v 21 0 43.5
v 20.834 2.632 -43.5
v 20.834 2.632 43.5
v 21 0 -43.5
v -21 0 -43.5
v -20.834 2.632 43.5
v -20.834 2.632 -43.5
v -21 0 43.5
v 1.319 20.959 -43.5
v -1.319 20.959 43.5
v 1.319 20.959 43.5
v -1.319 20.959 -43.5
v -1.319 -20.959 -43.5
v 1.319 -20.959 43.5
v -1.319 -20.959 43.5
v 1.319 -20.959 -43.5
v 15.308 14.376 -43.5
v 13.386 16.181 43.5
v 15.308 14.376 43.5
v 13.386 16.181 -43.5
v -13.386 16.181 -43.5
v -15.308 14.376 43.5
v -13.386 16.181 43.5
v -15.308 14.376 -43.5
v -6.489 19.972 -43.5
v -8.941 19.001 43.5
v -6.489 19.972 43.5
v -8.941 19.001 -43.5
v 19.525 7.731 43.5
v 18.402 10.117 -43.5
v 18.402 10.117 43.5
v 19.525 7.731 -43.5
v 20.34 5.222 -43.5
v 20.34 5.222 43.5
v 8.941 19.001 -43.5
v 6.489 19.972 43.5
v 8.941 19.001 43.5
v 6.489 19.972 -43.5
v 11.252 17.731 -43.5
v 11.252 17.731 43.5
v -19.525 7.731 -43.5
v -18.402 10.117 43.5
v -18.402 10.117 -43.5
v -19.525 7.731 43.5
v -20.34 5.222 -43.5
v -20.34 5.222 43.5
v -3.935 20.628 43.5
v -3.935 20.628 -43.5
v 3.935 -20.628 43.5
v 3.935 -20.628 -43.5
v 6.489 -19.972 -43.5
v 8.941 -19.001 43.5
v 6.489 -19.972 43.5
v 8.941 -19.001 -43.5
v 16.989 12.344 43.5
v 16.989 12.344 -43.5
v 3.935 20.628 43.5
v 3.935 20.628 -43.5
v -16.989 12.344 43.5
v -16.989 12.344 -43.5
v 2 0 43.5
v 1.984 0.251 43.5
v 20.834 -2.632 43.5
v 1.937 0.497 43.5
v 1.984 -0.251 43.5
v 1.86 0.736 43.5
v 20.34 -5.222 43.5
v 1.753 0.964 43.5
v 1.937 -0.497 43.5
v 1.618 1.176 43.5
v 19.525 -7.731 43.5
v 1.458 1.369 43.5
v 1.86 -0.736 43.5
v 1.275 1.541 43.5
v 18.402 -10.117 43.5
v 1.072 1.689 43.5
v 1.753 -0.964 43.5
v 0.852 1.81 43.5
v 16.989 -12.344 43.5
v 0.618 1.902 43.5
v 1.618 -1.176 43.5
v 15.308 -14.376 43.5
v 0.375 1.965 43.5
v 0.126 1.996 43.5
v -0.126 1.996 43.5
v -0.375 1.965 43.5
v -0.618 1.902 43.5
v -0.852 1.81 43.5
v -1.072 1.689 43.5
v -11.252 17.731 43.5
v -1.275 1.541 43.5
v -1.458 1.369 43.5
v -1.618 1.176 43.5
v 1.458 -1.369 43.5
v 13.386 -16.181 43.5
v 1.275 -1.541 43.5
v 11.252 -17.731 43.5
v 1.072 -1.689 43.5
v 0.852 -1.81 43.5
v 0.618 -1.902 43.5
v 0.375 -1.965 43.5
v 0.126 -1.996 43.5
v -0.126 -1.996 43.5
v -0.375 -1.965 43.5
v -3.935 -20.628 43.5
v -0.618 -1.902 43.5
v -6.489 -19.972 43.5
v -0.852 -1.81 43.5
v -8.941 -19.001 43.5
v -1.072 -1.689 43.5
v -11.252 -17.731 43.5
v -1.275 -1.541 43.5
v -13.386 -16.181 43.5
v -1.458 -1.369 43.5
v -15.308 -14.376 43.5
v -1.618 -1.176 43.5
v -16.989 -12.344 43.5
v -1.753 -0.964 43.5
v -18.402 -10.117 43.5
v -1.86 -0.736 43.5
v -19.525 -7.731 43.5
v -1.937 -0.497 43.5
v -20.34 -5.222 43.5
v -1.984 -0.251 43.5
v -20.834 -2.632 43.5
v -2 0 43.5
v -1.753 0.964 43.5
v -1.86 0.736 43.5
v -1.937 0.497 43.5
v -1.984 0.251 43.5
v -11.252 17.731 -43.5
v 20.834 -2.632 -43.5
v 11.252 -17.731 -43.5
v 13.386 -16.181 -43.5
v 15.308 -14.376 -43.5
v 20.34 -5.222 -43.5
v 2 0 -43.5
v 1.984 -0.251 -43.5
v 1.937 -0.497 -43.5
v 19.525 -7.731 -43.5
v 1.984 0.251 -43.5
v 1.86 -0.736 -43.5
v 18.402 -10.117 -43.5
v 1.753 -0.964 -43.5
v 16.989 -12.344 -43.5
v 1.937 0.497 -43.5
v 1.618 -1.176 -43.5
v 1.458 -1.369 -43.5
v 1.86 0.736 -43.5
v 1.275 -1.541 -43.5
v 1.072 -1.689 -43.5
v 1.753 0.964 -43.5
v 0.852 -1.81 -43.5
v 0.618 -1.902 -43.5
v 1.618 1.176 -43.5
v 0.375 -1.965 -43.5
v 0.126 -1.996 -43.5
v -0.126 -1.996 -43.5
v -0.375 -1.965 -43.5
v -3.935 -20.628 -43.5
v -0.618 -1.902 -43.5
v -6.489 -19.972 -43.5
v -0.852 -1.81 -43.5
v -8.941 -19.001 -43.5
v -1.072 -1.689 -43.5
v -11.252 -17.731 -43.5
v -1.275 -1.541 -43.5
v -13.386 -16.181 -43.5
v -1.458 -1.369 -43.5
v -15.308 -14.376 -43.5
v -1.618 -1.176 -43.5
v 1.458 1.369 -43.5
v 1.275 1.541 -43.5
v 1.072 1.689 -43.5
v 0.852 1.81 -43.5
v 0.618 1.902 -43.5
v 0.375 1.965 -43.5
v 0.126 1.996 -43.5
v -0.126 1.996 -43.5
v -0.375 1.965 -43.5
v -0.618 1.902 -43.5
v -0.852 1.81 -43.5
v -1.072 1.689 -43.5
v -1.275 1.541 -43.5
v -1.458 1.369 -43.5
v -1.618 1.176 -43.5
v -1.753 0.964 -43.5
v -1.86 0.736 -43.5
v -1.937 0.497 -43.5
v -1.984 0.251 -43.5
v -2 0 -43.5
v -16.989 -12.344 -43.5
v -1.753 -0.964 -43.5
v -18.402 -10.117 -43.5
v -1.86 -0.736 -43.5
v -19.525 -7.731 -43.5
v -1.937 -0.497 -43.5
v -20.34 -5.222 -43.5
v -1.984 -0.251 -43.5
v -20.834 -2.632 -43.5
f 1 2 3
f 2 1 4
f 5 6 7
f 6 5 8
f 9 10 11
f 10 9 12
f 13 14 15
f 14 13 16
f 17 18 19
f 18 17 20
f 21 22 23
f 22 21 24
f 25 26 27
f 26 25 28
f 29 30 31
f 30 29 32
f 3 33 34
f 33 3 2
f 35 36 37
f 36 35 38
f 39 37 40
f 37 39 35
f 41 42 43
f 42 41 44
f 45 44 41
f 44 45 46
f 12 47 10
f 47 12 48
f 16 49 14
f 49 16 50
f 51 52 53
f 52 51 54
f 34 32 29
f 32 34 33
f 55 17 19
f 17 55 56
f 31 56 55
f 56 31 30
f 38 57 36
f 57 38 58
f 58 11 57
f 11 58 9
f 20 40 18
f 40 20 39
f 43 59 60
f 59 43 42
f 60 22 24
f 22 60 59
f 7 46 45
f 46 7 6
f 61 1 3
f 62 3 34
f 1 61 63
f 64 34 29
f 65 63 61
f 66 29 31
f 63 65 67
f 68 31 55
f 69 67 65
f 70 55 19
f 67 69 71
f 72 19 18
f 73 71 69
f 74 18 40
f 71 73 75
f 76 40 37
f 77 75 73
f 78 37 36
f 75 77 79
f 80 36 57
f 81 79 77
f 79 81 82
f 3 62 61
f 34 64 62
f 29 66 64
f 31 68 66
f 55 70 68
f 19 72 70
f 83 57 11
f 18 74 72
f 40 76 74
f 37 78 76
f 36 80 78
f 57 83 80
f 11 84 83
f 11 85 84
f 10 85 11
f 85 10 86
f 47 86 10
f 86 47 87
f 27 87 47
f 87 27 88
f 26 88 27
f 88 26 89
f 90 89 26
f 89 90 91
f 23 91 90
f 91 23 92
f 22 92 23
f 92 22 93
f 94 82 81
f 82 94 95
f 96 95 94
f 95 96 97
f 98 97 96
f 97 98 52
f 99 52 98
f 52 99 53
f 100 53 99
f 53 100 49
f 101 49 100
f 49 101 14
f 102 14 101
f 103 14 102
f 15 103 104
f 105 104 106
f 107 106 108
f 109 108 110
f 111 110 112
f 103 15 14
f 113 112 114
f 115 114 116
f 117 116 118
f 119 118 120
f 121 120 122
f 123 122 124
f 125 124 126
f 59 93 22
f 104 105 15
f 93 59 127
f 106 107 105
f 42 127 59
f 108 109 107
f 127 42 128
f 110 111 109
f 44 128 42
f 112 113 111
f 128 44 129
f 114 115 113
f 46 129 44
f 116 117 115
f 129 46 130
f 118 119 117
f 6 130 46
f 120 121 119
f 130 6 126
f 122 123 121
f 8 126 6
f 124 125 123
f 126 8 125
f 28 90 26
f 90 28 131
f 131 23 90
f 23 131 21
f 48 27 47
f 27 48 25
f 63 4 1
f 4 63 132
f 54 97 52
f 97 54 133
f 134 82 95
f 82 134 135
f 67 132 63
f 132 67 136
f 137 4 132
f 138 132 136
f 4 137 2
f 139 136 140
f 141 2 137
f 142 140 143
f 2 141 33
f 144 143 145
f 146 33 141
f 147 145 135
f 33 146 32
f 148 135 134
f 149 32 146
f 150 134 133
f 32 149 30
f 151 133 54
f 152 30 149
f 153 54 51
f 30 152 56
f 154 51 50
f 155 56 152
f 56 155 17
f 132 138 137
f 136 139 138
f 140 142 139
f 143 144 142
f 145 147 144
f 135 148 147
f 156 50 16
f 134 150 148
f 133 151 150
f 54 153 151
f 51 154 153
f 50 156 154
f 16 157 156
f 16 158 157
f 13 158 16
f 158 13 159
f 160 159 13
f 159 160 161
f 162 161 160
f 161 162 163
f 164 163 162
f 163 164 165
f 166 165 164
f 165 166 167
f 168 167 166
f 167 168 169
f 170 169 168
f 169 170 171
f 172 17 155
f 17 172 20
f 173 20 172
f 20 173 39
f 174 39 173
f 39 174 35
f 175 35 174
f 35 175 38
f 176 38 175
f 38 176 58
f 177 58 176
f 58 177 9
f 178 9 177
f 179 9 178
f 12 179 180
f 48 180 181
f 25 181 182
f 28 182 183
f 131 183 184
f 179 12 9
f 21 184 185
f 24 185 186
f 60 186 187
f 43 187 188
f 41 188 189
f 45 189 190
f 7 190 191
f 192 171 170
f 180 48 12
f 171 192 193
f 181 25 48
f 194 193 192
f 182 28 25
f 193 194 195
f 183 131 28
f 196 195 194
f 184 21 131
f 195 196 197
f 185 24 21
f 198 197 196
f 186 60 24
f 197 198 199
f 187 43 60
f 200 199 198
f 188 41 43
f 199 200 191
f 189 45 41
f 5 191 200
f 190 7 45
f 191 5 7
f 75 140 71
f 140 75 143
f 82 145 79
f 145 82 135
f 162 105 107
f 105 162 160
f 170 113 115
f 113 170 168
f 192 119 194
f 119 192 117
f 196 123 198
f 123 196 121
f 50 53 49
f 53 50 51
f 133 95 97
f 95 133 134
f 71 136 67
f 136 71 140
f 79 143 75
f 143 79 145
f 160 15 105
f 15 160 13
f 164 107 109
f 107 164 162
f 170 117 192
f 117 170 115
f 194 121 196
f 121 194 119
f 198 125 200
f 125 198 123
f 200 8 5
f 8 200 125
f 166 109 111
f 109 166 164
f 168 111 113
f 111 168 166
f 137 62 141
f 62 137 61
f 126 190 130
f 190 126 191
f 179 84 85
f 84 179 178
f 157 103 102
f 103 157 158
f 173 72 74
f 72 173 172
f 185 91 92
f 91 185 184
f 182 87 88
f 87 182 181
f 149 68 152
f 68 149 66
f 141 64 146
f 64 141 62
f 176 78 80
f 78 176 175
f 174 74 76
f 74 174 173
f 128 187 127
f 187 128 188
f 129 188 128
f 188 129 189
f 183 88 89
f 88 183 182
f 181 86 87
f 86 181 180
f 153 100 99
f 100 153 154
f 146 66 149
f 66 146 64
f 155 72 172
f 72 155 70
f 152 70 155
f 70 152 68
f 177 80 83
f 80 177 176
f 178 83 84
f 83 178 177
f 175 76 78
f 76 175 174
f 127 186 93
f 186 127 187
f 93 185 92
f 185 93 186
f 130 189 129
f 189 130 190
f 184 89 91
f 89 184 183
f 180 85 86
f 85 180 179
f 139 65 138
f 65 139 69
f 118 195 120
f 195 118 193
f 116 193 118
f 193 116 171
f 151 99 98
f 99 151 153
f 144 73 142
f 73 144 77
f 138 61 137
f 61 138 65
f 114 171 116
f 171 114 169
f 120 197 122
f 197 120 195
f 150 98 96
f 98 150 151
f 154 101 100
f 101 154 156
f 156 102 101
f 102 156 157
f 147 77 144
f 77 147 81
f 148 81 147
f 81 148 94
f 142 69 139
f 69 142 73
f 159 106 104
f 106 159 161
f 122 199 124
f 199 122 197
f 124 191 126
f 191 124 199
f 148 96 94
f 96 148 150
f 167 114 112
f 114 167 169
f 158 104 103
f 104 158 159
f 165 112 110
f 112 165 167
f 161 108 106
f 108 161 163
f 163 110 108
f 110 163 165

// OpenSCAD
$fn = 50;


difference() {
	union() {
		translate(v = [0, 0, -43.5000000000]) {
			cylinder(h = 87, r = 21.0000000000);
		}
	}
	union() {
		translate(v = [0, 0, -100.0000000000]) {
			cylinder(h = 200, r = 2);
		}
	}
}
